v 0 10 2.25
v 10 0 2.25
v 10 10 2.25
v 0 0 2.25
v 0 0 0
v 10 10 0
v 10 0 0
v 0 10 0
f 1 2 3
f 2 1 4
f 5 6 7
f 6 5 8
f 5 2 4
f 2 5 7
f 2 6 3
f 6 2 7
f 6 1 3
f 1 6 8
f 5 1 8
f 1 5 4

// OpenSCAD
/* Warning, this is a very basic generator with a lot of approximation 
input data : [FBGA, NCC, 10x10x2.25mm, 170, , A, C04-25470A]
generated by com.zoubworld.electronics.cad.model3d.Basic
Date : Sun Feb 15 10:50:49 CET 2026
*/

//body
color("black")
translate([0,0,0])
cube([10.0,10.0,2.25], center=false);
